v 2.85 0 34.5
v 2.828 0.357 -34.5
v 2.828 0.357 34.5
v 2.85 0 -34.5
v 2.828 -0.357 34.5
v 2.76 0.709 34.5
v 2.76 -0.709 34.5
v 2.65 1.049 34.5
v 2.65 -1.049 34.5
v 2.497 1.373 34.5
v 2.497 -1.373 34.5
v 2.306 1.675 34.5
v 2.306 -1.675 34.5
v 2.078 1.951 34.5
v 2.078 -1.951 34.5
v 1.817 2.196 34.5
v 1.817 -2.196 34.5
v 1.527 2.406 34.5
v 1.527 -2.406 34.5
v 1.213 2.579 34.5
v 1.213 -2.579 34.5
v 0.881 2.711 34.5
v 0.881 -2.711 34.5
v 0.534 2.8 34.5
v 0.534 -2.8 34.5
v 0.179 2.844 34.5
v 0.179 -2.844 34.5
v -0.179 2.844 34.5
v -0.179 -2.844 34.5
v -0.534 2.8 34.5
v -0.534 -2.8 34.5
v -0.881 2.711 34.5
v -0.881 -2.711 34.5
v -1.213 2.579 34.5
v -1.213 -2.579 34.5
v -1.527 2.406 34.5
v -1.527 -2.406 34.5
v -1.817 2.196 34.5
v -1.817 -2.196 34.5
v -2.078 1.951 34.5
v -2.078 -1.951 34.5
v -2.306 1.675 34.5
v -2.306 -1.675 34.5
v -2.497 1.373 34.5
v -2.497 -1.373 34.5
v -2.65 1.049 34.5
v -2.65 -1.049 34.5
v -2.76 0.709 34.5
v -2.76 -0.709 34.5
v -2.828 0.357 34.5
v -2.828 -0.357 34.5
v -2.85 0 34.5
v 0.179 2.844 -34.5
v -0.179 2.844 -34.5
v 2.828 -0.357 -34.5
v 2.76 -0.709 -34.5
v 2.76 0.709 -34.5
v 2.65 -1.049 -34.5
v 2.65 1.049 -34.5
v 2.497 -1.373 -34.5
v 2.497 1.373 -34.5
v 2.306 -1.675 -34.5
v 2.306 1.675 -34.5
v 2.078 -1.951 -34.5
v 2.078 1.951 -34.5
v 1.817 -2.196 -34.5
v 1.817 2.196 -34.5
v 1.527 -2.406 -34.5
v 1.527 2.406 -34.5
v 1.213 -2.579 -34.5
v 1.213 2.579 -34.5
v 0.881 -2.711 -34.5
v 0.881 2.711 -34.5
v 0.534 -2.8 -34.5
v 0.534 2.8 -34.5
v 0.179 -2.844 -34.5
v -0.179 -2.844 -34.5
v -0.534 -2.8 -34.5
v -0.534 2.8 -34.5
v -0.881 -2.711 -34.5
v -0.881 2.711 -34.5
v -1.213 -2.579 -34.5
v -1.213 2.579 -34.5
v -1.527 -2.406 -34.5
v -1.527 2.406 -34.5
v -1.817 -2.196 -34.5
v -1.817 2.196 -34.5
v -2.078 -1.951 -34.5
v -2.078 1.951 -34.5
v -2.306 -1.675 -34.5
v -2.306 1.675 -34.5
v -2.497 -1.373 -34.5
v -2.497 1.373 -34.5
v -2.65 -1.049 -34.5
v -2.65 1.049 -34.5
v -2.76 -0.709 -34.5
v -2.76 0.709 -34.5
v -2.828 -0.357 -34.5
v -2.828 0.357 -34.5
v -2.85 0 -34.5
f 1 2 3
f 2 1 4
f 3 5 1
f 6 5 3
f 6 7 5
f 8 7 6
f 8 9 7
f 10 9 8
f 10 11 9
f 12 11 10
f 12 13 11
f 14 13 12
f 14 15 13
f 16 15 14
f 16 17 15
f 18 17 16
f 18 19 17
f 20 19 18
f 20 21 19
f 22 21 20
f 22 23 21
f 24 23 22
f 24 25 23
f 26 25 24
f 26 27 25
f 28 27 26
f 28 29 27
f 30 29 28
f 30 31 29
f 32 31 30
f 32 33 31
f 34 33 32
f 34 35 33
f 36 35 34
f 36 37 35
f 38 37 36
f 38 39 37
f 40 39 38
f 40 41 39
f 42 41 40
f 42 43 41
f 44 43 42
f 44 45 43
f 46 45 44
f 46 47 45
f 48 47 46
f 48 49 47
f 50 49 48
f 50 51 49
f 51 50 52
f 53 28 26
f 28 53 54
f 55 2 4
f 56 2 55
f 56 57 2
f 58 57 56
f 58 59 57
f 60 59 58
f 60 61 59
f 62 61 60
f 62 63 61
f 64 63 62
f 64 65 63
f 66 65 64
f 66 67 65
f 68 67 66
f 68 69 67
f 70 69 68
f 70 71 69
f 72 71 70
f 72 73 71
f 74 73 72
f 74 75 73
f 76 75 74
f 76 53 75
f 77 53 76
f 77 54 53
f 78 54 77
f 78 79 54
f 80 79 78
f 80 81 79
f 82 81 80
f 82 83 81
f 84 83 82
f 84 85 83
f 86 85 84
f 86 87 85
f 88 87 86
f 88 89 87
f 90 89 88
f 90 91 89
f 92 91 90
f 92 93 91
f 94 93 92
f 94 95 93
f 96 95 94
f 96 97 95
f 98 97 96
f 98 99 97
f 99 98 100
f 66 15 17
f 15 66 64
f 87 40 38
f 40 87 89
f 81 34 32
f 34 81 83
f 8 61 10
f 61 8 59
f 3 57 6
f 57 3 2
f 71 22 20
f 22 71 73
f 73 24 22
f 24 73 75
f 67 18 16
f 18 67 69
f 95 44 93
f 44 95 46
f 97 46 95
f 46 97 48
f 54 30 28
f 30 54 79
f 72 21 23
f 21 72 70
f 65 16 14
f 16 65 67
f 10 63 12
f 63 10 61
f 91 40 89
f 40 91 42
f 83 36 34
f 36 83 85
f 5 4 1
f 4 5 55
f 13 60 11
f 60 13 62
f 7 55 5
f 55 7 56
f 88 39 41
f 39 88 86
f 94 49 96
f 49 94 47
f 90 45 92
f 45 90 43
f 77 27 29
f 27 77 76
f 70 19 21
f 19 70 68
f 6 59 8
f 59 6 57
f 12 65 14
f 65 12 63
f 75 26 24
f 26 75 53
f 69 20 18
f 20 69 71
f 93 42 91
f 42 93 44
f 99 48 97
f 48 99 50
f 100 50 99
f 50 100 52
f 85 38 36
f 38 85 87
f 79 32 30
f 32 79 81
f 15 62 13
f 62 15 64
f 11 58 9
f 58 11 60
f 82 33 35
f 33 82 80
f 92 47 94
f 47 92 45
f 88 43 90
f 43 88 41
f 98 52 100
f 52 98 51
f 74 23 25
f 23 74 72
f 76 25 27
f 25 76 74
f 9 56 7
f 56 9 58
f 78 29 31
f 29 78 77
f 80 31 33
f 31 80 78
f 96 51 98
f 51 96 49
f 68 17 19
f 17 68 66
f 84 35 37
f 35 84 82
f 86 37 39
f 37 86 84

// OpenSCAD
$fn = 50;


difference() {
	union() {
		translate(v = [0, 0, -34.5000000000]) {
			cylinder(h = 69, r = 2.8500000000);
		}
	}
	union() {
		translate(v = [0, 0, -100.0000000000]) {
			cylinder(h = 200, r = 0);
		}
	}
}
